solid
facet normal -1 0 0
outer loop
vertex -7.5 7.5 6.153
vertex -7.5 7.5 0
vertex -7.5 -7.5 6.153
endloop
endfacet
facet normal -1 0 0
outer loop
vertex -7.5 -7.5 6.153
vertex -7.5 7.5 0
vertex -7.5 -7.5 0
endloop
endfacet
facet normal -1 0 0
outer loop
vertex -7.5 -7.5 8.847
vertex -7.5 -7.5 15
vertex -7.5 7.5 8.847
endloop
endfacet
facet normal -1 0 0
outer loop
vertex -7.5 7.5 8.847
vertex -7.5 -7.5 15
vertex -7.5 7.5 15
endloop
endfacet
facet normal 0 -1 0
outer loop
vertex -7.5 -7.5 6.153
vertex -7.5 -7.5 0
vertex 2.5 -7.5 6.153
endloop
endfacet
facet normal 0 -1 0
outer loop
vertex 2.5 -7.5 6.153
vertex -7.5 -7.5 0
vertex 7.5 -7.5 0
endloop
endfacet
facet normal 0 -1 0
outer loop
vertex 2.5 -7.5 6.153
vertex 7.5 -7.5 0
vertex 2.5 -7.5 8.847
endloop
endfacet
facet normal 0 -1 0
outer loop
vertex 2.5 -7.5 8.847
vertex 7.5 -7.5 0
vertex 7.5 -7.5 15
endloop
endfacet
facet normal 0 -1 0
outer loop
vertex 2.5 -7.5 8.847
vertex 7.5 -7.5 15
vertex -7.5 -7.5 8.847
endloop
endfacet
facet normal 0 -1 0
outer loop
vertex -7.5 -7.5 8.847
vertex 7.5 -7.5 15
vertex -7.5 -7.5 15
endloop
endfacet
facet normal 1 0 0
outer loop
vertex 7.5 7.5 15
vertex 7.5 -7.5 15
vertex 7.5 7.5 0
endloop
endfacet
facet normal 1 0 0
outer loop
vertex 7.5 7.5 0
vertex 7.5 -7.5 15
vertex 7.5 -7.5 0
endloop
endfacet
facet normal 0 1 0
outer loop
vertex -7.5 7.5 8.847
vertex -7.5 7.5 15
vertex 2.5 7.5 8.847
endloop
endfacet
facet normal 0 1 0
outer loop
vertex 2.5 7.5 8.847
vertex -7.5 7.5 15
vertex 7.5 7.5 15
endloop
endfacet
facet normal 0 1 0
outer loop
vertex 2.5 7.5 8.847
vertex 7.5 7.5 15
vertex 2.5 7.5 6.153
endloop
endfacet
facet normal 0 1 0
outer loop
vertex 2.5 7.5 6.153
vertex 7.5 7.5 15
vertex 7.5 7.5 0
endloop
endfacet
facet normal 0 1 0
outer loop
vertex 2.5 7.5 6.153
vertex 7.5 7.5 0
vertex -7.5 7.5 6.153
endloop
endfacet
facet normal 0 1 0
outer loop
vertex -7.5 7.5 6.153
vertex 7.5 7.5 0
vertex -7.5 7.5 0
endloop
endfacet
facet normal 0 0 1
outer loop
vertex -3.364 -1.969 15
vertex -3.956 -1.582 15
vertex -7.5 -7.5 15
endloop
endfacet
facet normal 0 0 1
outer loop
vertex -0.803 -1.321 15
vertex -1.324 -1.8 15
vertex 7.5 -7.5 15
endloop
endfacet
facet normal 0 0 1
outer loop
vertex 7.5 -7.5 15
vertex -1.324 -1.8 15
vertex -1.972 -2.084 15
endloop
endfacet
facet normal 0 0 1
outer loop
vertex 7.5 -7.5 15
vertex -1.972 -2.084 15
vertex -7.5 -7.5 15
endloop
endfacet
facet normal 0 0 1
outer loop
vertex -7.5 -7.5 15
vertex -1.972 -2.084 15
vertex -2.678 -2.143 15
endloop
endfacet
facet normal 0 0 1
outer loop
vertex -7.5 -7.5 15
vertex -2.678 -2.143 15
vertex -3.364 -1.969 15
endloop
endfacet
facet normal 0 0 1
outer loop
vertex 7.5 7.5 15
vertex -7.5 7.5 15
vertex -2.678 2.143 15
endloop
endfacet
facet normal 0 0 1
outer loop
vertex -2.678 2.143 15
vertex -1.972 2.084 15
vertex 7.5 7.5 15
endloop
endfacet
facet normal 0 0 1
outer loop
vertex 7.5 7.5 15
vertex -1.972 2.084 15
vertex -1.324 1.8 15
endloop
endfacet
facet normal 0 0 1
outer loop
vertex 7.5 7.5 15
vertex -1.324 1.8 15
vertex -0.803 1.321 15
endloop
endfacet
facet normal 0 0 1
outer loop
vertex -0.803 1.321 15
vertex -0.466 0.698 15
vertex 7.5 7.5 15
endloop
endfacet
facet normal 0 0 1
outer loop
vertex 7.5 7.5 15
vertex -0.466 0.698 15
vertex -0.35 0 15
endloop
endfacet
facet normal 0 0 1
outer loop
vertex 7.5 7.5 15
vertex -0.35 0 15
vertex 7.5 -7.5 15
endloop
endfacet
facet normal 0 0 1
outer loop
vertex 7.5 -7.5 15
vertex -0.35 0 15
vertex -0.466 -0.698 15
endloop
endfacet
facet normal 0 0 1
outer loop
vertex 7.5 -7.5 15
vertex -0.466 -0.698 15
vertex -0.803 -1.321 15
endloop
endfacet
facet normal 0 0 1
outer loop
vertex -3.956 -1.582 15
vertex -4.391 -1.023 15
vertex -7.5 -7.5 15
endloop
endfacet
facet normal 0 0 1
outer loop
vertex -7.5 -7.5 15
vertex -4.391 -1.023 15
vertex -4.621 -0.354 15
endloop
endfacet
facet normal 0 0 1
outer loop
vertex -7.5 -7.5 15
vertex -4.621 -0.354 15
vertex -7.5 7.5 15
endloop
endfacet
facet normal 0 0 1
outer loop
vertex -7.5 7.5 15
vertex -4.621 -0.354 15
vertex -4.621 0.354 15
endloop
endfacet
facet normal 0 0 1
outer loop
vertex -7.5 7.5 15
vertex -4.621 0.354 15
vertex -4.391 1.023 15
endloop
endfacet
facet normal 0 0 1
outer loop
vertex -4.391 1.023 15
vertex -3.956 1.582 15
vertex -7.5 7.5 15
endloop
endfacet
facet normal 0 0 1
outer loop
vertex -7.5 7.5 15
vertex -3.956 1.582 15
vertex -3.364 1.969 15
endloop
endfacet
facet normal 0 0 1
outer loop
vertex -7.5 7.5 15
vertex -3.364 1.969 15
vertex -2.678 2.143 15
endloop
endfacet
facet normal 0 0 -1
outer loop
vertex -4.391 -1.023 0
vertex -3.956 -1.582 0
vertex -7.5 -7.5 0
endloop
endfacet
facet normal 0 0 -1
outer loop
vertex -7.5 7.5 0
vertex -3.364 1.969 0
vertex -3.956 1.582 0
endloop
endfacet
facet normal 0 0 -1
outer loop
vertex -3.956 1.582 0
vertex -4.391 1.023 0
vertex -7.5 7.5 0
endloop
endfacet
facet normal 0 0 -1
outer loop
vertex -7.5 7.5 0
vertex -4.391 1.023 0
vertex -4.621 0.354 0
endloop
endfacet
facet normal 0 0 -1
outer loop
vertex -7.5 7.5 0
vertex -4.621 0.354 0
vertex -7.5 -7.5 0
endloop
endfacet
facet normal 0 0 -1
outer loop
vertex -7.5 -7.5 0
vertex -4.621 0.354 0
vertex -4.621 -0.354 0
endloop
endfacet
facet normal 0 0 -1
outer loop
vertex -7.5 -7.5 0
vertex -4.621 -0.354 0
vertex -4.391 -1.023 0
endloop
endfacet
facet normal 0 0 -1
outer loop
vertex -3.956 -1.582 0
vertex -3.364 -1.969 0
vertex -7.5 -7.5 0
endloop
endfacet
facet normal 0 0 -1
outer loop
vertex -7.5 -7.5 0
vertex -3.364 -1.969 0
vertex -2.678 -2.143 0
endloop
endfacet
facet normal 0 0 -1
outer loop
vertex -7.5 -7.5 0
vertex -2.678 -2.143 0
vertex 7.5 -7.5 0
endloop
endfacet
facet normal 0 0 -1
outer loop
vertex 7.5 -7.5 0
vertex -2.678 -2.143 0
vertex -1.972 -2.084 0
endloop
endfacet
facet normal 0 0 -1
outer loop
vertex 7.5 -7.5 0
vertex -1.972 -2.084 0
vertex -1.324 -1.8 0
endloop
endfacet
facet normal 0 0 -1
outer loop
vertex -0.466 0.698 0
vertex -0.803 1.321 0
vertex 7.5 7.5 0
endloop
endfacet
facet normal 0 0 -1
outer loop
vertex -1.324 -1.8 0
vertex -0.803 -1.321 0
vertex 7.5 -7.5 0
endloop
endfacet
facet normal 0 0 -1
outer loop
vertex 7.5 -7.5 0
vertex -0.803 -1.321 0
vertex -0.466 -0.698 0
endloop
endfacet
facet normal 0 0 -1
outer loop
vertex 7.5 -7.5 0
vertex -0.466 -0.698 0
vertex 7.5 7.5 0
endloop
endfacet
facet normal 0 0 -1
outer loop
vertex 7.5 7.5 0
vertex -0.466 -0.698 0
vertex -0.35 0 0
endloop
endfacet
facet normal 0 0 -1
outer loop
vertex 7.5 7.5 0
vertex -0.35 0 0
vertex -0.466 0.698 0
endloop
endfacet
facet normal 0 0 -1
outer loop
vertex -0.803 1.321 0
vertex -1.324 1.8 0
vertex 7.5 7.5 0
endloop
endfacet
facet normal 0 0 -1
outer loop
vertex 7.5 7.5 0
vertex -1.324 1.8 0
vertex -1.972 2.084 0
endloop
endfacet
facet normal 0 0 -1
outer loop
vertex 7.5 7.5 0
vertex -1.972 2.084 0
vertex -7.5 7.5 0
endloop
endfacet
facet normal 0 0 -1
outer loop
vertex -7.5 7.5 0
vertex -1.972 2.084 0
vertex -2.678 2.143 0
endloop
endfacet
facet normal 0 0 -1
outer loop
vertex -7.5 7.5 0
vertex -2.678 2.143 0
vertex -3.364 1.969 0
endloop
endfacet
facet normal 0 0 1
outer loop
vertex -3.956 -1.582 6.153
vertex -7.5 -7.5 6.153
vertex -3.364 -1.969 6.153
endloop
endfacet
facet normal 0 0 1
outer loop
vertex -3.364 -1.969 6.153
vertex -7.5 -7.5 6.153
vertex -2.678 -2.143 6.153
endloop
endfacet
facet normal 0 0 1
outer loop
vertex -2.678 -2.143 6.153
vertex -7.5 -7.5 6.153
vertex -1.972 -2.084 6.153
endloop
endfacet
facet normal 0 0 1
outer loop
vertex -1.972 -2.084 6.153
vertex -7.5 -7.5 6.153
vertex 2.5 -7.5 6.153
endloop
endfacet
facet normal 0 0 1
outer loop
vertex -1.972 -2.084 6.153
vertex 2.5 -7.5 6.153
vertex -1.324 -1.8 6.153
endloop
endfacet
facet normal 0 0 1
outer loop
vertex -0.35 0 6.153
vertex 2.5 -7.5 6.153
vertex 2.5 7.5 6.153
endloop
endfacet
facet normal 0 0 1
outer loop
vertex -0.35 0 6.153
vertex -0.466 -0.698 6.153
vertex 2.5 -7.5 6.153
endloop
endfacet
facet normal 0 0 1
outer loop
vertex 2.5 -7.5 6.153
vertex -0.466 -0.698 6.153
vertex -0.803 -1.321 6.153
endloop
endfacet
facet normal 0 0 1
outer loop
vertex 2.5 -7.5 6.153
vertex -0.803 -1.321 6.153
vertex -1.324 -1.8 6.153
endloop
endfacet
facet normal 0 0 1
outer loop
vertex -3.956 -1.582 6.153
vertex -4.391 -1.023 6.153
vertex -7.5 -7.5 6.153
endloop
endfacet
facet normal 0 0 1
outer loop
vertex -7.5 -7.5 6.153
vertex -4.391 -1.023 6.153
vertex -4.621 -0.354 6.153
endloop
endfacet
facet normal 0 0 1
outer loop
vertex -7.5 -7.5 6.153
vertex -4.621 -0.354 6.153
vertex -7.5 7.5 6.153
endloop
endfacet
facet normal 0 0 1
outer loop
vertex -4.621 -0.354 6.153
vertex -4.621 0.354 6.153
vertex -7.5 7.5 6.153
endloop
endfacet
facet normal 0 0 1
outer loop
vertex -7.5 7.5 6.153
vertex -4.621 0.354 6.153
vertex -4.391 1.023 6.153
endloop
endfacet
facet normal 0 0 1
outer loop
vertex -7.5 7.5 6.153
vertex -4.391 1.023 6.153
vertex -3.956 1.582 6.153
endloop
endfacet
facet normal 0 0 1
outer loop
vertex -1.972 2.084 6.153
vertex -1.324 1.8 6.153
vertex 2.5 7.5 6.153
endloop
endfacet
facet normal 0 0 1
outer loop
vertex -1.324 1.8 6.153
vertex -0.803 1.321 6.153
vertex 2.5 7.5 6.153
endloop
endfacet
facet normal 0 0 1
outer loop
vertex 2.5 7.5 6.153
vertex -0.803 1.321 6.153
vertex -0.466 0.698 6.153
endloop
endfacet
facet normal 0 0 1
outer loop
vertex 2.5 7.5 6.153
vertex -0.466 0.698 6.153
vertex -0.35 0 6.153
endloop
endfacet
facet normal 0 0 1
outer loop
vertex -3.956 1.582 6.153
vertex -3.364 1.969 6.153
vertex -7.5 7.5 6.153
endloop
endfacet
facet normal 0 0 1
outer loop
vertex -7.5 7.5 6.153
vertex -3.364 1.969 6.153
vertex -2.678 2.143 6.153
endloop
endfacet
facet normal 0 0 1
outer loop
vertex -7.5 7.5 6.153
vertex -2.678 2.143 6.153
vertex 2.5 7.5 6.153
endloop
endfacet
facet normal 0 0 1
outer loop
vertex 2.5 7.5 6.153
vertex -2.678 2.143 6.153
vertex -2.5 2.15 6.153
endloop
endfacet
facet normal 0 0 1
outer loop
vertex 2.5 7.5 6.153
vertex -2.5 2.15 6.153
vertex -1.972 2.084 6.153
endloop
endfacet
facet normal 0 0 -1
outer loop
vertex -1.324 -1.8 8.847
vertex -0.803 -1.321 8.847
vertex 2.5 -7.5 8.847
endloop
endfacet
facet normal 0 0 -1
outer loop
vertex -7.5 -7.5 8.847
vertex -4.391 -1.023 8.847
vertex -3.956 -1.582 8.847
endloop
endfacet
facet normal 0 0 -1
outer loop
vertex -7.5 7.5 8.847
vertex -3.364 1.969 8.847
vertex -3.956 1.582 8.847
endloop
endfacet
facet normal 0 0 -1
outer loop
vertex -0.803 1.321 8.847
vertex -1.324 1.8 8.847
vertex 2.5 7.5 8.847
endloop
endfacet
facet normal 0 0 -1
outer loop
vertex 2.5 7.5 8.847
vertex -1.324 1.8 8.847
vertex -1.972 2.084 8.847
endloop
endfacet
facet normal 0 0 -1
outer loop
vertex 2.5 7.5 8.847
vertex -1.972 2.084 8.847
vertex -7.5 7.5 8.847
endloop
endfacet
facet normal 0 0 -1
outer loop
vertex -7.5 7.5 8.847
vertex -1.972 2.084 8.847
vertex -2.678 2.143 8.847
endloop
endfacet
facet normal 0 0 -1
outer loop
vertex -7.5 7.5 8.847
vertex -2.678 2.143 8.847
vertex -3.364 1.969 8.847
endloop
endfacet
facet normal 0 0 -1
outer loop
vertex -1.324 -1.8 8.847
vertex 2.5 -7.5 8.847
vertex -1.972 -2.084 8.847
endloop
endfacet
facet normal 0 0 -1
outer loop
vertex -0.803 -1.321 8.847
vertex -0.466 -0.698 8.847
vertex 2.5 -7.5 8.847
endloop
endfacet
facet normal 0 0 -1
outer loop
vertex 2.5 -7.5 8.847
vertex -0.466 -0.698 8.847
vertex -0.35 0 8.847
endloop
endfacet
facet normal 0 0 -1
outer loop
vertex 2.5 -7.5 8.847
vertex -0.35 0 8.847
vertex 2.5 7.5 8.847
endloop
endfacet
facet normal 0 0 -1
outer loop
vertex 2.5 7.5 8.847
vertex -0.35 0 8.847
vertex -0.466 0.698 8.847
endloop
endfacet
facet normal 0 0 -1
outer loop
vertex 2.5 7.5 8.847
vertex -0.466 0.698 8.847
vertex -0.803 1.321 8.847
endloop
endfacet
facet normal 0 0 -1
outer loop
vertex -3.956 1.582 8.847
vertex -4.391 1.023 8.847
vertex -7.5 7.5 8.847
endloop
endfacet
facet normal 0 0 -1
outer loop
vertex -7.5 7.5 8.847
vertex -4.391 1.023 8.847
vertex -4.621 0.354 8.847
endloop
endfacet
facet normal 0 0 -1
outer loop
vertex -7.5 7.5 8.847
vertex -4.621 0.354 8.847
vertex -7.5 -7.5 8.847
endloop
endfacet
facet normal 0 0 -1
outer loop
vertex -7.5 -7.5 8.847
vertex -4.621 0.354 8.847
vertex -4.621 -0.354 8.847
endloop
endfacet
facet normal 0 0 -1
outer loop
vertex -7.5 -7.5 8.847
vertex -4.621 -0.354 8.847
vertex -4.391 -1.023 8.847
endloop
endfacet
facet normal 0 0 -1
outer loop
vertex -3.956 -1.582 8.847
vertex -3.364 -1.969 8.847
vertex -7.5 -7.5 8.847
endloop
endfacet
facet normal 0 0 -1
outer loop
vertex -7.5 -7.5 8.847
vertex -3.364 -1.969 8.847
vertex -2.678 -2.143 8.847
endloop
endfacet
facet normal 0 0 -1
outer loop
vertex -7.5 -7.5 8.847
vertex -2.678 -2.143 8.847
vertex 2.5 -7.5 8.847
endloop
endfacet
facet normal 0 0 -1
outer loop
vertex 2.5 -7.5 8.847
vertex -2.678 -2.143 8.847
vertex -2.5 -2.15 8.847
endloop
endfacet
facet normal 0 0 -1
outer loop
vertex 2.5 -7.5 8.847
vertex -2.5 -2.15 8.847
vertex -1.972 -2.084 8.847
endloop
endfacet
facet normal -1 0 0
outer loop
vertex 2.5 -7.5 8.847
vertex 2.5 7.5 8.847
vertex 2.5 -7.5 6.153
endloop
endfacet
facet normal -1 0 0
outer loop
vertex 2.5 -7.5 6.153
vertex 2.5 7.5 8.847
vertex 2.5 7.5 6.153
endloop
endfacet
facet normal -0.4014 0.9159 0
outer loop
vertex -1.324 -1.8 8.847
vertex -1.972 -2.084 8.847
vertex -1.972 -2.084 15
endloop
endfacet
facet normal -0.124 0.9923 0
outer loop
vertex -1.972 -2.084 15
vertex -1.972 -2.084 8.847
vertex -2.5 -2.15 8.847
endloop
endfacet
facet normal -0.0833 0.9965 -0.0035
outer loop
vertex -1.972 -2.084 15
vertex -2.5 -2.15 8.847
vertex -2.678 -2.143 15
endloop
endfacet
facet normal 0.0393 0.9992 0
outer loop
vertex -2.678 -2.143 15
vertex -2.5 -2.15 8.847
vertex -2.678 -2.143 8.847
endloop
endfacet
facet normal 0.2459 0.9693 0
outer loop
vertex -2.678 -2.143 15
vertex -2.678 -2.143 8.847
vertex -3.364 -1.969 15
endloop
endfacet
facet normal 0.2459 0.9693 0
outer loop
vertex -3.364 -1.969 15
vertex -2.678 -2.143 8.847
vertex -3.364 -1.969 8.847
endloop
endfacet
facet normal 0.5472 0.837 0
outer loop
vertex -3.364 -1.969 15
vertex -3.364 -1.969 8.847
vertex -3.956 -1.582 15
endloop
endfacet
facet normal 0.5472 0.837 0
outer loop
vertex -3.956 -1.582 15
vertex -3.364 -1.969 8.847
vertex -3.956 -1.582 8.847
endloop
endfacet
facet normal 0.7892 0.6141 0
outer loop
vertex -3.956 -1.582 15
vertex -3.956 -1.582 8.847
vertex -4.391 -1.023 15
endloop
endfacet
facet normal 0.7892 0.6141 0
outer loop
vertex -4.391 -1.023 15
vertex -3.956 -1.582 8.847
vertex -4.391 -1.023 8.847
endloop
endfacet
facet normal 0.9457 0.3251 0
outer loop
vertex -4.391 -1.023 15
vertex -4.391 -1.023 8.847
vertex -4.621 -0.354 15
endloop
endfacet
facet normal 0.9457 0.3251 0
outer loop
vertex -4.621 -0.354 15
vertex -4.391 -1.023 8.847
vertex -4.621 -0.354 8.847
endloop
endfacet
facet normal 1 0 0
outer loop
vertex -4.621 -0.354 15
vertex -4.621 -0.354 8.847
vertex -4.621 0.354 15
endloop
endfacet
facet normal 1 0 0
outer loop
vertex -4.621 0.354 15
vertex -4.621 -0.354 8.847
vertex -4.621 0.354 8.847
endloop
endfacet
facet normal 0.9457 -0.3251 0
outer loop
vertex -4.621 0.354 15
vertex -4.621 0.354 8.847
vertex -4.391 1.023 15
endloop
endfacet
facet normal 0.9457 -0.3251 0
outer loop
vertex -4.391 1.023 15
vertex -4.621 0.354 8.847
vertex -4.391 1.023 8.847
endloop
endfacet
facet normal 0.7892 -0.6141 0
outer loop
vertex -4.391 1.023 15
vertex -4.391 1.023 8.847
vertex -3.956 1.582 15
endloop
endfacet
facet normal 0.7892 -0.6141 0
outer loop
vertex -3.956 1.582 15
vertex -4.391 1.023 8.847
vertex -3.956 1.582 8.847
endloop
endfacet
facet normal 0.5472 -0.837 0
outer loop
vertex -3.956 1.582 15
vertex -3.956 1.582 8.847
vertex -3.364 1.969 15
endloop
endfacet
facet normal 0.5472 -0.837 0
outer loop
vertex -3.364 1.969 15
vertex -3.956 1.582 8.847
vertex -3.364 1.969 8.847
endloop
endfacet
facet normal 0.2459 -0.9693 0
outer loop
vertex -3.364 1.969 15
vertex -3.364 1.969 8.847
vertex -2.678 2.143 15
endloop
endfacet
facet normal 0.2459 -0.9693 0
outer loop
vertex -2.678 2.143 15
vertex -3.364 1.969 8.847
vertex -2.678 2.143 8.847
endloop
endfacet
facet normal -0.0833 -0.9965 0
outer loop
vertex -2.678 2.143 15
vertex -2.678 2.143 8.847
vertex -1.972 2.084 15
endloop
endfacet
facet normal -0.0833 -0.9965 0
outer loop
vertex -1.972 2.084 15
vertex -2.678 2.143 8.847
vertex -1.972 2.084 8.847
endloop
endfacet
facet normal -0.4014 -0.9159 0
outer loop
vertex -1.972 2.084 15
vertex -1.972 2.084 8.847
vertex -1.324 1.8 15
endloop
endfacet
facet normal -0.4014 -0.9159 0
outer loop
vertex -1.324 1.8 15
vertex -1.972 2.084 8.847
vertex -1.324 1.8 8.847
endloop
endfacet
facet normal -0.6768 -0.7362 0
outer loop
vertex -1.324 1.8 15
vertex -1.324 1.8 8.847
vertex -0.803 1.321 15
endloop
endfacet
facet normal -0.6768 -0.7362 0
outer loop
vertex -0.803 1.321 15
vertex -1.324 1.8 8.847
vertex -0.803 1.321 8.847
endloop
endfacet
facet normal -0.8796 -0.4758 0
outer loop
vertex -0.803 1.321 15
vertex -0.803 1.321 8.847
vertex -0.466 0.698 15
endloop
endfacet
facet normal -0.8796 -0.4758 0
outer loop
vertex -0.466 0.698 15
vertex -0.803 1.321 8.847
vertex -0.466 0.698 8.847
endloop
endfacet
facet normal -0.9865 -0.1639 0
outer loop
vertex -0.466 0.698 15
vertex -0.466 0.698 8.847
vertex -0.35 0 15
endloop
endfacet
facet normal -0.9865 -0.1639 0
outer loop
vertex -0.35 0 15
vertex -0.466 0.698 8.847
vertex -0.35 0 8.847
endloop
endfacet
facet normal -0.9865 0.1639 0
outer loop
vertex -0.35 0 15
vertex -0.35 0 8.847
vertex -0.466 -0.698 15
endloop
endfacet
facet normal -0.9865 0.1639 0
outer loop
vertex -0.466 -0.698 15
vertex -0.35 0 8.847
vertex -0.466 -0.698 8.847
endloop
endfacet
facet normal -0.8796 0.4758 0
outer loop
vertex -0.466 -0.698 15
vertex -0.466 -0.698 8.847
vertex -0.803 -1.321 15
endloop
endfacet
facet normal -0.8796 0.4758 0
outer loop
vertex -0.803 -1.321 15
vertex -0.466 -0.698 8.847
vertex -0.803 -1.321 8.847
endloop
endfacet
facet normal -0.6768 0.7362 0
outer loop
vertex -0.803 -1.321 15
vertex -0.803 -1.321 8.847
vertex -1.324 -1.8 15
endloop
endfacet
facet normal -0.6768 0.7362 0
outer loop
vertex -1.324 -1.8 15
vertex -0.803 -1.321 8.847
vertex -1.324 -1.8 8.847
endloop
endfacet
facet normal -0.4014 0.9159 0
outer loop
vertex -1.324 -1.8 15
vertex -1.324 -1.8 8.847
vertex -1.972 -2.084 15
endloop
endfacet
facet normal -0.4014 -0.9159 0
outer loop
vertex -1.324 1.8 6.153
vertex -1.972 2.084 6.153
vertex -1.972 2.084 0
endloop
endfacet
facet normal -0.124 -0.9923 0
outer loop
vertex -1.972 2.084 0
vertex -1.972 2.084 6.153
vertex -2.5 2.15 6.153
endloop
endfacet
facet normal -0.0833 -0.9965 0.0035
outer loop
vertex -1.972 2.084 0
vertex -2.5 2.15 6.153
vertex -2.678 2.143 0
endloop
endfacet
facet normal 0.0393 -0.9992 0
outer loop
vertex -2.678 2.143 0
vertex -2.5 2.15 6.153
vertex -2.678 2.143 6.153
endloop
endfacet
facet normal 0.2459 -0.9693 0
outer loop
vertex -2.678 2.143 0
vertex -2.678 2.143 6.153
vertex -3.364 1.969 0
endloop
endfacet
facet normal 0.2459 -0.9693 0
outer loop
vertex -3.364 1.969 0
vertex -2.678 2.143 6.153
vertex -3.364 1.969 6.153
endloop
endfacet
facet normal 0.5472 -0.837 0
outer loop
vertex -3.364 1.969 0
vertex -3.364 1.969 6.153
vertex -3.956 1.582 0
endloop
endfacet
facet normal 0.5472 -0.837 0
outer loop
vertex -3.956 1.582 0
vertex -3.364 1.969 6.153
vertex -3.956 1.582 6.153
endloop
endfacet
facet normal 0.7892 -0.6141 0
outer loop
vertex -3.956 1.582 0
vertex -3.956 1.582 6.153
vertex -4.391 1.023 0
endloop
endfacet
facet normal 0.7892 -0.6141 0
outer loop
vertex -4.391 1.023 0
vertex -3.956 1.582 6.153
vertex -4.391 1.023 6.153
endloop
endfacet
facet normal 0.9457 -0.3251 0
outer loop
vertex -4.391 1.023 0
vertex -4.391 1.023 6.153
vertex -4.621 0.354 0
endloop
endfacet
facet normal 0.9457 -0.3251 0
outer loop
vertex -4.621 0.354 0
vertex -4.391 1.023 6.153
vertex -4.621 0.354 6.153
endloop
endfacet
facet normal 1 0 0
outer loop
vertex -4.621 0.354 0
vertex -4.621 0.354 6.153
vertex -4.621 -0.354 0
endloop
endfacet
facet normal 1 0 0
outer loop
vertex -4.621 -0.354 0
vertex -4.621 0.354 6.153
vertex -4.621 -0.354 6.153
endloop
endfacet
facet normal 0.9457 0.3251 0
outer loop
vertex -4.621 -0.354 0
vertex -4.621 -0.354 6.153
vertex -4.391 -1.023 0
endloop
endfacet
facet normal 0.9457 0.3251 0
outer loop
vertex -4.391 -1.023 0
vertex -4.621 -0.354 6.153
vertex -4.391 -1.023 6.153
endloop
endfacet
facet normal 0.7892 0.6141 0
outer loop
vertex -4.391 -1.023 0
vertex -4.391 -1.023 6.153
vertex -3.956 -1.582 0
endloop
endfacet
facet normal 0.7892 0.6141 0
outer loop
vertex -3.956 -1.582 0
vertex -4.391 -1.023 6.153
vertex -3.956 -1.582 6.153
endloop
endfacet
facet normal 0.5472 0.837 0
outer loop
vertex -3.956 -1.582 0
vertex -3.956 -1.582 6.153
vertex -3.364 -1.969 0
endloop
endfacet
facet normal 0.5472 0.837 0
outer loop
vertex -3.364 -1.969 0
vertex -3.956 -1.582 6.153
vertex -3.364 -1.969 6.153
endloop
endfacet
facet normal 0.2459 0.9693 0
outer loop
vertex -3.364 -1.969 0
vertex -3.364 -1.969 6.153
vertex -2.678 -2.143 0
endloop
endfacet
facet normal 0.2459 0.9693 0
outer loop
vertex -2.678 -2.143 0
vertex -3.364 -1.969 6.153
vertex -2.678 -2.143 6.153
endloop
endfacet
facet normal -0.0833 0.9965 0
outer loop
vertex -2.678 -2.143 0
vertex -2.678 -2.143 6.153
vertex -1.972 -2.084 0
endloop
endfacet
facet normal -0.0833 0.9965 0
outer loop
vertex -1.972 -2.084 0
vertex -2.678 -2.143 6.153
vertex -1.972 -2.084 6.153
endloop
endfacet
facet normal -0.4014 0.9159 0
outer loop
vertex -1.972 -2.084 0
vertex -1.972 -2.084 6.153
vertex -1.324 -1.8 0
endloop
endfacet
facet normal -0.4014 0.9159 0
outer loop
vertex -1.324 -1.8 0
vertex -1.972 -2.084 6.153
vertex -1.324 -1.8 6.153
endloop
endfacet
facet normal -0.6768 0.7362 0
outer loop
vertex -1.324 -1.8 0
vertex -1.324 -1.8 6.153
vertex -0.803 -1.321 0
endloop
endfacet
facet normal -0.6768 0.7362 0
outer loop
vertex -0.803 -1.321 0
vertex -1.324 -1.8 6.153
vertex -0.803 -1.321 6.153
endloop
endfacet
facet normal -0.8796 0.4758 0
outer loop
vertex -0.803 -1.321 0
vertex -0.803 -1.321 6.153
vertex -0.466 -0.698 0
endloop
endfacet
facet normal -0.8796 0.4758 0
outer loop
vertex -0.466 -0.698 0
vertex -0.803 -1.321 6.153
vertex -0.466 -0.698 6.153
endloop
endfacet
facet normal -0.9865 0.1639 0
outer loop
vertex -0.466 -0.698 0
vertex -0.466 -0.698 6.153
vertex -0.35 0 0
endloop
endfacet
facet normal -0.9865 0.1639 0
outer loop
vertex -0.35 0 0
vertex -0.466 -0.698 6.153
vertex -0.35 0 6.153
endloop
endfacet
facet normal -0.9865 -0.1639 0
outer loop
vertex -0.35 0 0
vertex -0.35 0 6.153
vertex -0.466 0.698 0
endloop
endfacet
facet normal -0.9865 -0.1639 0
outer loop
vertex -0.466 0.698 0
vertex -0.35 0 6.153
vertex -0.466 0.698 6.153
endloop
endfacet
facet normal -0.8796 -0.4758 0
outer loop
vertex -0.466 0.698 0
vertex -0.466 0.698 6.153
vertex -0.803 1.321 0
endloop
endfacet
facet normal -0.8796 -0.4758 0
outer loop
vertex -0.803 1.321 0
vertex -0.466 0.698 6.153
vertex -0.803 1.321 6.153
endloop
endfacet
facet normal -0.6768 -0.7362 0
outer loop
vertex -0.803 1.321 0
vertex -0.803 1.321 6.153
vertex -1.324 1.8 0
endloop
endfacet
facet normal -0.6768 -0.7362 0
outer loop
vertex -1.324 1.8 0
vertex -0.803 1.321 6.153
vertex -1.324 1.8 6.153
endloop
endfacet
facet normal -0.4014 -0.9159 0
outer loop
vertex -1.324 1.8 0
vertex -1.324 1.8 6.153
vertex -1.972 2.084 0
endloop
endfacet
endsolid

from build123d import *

# Parameters (mm, degrees)
SKETCH1_W           = 15
SKETCH1_H           = 15
BOSS_EXTRUDE1_DEPTH = 15
SKETCH2_W           = 2.69425289
SKETCH2_H           = 15
CUT_EXTRUDE1_DEPTH  = 10
SKETCH3_R           = 2.15
CUT_EXTRUDE2_DEPTH  = 37


with BuildPart() as part:
    # Sketch1 → Boss-Extrude1 (new body)
    with BuildSketch(Plane.XY):
        Rectangle(SKETCH1_W, SKETCH1_H)
    extrude(amount=BOSS_EXTRUDE1_DEPTH)

    # Sketch2 → Cut-Extrude1 (cut)
    with BuildSketch(Plane.ZY.offset(7.5)):
        with Locations((7.5, 0)):
            Rectangle(SKETCH2_W, SKETCH2_H)
    extrude(amount=-CUT_EXTRUDE1_DEPTH, mode=Mode.SUBTRACT)

    # Sketch3 → Cut-Extrude2 (cut)
    with BuildSketch(Plane.XY.offset(15)):
        with Locations((-2.5, 0)):
            Circle(SKETCH3_R)
    extrude(amount=-CUT_EXTRUDE2_DEPTH, mode=Mode.SUBTRACT)


solid = part.part
